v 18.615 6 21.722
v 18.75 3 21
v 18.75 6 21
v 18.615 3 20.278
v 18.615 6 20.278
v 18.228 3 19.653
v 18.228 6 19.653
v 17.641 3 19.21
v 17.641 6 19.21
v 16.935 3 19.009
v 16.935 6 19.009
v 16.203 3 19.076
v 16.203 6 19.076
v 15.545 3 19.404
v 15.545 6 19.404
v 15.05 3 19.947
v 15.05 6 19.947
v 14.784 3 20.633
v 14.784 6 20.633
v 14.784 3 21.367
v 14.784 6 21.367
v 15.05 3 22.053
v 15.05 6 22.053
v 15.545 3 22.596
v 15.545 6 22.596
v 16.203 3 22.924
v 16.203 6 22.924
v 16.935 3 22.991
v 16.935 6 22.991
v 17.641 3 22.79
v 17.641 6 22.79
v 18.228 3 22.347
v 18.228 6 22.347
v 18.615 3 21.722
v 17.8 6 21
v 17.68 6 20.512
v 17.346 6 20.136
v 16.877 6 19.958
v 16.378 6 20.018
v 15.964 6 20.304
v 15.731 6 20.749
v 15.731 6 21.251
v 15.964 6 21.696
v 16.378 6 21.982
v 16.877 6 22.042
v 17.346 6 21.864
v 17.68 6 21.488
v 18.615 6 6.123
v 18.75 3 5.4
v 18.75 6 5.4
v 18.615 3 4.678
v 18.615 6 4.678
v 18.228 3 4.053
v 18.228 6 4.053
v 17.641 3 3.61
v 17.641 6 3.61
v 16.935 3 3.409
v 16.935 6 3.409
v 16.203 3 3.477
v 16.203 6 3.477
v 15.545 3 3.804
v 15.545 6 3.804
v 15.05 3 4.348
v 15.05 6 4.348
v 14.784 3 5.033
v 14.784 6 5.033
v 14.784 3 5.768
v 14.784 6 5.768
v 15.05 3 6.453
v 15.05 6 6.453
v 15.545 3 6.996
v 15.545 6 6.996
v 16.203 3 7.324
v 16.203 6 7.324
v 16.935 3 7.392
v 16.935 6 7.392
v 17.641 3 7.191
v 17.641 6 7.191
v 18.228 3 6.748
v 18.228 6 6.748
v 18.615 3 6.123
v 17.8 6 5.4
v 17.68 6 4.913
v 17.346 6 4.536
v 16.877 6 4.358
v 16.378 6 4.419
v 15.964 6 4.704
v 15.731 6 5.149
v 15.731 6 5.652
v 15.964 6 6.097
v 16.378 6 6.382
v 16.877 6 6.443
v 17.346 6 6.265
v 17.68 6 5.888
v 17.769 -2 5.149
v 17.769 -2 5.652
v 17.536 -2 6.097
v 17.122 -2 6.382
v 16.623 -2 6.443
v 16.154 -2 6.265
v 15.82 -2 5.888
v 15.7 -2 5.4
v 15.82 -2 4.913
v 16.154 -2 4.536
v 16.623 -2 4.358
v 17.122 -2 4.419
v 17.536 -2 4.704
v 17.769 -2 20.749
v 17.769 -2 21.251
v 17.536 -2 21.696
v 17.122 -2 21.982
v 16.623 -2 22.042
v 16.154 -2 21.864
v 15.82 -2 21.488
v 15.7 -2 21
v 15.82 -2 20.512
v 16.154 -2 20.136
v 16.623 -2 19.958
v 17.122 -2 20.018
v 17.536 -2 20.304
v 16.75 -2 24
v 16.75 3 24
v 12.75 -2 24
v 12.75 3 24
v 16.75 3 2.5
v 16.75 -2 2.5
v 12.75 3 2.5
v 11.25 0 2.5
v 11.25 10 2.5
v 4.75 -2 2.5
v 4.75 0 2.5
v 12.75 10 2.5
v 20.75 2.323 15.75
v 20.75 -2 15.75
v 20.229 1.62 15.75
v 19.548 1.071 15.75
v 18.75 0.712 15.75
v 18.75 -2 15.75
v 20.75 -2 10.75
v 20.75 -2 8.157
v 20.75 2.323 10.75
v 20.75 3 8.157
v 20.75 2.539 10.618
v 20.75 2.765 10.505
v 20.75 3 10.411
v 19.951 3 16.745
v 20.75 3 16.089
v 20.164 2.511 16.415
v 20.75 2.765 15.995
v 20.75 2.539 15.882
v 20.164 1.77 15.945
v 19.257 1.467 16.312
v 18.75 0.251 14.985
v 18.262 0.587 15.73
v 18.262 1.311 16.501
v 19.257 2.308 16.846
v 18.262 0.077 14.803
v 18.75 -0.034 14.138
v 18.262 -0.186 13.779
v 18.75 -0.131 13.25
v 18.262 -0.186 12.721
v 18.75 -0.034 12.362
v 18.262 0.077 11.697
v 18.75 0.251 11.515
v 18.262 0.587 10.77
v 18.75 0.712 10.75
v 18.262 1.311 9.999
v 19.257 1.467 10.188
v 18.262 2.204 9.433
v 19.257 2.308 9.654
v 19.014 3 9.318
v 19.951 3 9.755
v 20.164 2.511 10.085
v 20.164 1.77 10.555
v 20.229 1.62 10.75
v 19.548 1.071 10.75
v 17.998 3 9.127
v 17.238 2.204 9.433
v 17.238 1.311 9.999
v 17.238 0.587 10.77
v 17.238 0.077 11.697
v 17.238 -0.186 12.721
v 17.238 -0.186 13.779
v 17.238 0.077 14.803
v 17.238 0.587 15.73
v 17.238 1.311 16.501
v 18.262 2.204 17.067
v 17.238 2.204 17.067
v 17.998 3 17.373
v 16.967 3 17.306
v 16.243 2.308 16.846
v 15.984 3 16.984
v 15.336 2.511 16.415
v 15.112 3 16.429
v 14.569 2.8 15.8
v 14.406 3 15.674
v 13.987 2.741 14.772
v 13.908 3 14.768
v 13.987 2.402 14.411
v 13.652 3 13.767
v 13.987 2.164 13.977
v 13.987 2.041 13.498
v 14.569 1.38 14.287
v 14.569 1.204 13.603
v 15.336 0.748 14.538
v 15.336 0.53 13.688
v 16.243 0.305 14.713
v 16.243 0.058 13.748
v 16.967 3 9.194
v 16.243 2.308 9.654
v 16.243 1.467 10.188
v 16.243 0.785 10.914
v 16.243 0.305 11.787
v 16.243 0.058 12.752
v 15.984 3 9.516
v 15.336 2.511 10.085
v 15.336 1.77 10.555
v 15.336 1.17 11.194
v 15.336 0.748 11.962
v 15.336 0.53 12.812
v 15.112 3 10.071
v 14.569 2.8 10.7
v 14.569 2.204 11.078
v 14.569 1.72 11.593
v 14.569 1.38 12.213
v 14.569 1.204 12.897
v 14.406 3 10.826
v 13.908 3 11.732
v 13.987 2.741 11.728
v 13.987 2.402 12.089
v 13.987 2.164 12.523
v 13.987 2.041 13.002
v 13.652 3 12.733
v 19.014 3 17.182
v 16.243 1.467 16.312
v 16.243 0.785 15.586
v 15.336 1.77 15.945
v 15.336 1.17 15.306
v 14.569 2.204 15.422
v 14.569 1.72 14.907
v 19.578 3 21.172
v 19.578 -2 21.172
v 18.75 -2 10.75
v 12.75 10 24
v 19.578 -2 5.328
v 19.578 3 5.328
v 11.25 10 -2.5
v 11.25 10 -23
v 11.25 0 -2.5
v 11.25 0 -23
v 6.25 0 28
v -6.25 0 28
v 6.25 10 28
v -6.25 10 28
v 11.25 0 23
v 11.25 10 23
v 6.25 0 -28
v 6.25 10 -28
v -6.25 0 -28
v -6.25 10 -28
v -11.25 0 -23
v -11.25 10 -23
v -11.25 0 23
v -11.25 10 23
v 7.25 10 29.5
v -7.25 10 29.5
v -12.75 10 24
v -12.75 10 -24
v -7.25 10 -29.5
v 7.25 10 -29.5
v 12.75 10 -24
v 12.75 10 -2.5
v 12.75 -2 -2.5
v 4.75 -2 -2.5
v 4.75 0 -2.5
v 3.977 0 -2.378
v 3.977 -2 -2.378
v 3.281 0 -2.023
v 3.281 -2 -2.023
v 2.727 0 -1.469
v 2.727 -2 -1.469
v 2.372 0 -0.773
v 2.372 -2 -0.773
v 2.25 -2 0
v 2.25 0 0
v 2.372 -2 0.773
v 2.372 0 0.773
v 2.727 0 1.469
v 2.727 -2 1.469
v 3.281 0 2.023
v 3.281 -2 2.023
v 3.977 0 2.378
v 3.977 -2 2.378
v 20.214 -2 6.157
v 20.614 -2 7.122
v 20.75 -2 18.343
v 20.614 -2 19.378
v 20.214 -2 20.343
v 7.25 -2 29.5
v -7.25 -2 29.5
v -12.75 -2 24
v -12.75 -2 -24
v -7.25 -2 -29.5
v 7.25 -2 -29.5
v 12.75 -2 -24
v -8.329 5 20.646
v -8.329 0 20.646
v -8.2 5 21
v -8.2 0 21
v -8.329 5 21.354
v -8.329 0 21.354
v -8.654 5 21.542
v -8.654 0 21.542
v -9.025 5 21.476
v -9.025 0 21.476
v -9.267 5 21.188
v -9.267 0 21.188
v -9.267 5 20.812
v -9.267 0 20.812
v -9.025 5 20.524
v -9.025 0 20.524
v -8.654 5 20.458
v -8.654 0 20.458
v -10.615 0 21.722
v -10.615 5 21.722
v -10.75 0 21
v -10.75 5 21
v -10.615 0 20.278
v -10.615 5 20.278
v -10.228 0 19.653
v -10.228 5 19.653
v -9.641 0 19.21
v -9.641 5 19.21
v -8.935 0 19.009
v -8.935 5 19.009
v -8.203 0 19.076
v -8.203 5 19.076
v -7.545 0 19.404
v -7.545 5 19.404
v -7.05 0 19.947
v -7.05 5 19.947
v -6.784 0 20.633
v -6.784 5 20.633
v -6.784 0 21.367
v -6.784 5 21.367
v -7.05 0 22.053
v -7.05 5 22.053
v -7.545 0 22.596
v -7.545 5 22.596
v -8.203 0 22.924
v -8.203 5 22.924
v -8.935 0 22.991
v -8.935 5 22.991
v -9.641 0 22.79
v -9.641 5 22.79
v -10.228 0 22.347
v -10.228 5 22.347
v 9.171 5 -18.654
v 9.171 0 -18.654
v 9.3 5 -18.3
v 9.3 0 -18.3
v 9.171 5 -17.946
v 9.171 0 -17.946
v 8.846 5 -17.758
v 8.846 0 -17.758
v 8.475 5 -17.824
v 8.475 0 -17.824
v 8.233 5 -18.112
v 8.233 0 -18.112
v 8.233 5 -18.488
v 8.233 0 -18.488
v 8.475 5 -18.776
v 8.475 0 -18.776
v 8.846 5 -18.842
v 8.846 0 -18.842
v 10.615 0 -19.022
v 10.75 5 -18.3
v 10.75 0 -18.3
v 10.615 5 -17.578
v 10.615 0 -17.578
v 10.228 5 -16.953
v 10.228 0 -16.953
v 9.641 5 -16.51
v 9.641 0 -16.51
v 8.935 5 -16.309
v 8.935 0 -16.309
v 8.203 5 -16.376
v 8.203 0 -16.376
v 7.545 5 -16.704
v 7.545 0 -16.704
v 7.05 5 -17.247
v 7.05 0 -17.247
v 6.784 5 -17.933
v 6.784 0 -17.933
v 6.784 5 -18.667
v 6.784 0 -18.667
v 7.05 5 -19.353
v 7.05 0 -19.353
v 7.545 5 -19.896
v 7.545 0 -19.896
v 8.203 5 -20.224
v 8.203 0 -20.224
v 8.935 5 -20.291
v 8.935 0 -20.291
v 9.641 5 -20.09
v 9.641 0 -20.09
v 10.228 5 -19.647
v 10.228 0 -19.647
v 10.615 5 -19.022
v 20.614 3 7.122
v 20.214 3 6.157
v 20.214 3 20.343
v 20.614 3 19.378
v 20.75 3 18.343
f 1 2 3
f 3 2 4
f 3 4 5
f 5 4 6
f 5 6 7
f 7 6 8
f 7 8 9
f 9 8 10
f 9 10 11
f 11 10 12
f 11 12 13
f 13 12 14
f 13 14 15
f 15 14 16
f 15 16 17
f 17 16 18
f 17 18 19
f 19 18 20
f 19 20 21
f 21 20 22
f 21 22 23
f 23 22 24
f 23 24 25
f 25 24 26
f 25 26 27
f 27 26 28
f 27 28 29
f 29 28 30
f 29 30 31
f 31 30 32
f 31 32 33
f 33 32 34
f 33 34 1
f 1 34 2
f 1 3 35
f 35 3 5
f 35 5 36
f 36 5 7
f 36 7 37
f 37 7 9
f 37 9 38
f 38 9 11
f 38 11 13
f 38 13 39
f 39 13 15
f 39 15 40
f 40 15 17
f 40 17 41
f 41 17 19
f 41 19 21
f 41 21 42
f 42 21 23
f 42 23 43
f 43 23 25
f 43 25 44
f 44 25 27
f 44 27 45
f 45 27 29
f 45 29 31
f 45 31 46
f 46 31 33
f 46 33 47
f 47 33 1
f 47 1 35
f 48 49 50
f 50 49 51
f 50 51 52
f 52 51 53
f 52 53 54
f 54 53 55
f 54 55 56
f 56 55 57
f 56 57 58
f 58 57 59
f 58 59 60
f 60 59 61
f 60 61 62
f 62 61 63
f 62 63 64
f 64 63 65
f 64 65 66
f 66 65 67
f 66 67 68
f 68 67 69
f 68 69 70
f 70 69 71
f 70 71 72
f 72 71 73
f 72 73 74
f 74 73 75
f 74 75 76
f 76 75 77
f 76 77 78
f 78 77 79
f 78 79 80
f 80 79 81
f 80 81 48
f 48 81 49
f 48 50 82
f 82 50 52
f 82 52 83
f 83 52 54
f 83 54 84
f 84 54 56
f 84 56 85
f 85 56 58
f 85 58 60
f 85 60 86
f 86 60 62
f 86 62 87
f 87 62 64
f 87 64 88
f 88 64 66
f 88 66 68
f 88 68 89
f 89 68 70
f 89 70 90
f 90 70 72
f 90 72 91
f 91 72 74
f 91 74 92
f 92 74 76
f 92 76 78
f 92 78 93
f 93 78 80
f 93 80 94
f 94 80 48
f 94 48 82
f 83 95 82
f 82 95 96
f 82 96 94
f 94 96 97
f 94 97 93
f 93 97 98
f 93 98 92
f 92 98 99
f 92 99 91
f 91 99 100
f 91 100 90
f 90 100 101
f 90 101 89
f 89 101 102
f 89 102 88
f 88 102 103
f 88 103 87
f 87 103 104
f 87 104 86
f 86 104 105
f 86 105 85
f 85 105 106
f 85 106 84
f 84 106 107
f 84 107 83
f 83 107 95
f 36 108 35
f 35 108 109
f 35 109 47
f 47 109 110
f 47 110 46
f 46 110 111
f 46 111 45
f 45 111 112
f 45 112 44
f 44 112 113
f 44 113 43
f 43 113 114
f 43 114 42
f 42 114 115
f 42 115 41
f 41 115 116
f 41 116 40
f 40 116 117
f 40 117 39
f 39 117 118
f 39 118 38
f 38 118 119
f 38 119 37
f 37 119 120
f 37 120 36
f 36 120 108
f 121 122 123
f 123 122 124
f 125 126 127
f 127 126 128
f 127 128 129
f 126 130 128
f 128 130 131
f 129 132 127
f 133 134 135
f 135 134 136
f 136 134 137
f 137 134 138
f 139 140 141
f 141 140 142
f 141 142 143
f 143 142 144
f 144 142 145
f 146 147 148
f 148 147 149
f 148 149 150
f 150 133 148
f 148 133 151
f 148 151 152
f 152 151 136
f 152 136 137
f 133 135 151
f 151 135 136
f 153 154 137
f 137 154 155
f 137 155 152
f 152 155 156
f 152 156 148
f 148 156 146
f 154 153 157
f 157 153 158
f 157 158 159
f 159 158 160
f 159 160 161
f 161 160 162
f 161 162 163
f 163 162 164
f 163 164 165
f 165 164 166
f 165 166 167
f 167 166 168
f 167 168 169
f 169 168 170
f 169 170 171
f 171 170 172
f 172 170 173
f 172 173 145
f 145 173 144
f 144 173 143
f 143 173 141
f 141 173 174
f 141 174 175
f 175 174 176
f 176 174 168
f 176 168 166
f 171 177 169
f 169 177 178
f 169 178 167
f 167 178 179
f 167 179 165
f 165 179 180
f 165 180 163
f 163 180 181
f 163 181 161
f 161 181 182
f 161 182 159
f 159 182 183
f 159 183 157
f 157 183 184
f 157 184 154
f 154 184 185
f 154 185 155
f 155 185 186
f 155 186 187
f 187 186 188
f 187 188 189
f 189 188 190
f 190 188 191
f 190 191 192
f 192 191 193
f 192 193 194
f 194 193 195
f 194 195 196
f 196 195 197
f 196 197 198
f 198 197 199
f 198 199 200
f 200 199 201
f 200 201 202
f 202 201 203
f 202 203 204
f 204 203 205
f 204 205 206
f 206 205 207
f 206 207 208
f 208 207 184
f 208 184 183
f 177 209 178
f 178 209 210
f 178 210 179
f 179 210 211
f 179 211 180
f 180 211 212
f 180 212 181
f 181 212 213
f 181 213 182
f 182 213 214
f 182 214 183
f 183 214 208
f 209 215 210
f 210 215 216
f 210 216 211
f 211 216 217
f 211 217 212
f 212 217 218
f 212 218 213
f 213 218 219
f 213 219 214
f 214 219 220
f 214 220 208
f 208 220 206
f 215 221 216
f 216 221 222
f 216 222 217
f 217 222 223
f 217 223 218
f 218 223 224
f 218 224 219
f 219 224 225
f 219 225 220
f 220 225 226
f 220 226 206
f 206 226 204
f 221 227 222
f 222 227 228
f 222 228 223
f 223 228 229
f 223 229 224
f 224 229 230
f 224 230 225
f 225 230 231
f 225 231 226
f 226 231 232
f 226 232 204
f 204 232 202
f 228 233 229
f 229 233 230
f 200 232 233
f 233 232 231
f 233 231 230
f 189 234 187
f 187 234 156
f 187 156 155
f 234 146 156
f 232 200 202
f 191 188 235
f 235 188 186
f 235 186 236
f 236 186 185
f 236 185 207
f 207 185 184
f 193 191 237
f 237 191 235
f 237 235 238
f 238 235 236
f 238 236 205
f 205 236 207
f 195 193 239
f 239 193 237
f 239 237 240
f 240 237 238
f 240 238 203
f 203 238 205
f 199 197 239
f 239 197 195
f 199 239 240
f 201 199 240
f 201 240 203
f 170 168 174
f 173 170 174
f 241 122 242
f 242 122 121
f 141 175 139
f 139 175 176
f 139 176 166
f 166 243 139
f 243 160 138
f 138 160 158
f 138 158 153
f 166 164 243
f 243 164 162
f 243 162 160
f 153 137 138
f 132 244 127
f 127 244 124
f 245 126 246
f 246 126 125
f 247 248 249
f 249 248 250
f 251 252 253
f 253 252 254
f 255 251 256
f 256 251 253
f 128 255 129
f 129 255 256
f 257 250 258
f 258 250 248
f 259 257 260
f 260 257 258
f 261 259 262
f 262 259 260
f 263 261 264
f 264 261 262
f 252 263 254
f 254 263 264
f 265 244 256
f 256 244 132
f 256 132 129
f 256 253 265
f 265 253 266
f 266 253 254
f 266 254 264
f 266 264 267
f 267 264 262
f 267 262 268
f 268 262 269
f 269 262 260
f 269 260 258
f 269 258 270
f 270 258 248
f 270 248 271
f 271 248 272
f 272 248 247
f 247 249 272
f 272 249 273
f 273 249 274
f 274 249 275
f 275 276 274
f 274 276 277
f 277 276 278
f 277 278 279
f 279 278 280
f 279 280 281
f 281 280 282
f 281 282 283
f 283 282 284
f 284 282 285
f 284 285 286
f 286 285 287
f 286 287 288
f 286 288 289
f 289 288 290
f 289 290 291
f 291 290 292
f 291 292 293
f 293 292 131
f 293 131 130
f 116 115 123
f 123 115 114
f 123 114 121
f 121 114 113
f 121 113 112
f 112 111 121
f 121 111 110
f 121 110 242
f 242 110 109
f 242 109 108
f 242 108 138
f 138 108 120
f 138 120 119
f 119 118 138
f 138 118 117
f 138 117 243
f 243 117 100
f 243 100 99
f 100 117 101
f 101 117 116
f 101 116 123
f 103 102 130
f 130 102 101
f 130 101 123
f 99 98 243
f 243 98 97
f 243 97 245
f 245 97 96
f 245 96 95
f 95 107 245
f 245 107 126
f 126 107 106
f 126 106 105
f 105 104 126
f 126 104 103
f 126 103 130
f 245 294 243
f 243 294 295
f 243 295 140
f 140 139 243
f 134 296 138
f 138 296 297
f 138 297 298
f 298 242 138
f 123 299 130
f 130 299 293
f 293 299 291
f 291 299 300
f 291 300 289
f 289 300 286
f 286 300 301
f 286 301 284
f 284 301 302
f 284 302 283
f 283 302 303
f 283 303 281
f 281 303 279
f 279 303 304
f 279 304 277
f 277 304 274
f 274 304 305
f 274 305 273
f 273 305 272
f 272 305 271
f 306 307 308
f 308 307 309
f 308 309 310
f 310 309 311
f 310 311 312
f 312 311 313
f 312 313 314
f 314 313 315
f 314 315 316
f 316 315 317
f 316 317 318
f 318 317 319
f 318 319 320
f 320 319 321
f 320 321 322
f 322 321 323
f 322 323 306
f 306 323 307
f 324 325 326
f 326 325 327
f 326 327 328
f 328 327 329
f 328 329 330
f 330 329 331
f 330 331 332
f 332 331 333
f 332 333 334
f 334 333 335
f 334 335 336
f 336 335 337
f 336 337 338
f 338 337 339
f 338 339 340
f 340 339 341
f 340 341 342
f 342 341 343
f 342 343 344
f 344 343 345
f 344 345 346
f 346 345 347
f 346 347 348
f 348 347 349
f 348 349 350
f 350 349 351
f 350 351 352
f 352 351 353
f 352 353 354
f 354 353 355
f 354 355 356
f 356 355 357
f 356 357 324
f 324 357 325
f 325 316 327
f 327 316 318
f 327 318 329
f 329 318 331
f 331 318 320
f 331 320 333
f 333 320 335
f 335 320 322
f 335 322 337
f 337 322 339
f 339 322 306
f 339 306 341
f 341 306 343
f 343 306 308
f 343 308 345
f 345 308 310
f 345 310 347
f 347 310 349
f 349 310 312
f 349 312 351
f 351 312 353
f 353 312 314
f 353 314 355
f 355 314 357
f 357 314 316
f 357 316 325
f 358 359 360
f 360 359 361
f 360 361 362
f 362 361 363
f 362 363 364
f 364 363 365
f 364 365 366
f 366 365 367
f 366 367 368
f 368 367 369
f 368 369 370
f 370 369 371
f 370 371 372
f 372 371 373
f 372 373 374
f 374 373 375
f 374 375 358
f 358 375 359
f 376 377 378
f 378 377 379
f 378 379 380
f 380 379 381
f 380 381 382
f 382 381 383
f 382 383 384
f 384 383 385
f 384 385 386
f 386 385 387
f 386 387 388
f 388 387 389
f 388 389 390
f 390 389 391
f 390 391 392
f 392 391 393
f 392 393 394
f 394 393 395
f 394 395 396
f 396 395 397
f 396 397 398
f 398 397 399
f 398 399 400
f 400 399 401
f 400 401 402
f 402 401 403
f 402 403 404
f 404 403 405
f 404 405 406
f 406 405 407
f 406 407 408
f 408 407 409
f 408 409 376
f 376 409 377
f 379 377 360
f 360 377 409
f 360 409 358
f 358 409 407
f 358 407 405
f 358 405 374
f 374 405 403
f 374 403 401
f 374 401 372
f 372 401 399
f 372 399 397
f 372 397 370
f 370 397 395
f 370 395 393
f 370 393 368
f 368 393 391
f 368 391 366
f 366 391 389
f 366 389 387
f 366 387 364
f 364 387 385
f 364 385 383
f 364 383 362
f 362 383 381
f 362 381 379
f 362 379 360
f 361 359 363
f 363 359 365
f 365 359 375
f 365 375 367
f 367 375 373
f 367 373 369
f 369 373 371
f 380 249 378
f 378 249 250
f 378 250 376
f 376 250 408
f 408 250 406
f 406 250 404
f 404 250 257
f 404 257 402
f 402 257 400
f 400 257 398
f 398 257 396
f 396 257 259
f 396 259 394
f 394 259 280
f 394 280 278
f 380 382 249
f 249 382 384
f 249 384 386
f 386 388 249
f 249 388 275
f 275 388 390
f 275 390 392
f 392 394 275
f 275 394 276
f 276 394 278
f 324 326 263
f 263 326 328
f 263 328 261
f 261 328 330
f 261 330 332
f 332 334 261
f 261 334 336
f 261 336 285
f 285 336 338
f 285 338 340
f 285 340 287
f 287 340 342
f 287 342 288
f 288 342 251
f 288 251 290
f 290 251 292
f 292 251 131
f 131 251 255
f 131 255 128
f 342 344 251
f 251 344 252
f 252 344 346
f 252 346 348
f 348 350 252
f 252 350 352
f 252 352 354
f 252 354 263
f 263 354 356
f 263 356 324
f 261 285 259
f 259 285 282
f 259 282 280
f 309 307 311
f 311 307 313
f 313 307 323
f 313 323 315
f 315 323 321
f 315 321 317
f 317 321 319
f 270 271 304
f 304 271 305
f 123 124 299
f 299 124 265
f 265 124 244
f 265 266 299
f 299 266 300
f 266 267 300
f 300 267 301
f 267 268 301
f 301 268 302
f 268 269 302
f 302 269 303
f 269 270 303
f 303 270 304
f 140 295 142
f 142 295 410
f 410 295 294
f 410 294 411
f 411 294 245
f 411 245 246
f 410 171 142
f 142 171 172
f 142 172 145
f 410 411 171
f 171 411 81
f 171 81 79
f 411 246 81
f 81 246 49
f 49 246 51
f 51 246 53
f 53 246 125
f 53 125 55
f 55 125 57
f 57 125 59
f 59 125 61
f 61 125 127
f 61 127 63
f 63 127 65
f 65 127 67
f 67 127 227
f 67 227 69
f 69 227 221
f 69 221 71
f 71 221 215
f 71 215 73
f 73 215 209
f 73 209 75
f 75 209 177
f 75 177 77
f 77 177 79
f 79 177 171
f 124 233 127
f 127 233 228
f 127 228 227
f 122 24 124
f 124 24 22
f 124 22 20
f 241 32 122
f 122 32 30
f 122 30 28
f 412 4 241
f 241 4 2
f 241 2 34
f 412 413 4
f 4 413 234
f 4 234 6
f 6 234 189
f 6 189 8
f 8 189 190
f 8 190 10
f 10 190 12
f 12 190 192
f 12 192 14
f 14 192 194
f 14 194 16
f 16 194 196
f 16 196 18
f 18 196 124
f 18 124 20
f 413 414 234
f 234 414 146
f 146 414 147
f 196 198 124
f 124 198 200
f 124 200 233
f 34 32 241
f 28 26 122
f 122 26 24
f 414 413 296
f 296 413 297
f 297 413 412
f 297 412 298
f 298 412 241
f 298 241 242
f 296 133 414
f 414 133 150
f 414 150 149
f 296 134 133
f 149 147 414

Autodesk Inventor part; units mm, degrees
ref_plane "YZ Plane" through (0, 0, 0) normal (1, 0, 0) x (0, 1, 0)
ref_plane "XZ Plane" through (0, 0, 0) normal (0, 1, 0) x (-1, 0, 0)
sketch "Skizze1" plane through (0, 0, 0) normal (0, 1, 0) x (-1, 0, 0)
  line L0 (-5.25, 27.5) -> (5.25, 27.5)
  line L1 (10.75, 22) -> (10.75, -22)
  line L2 (5.25, -27.5) -> (-5.25, -27.5)
  line L3 (-10.75, -22) -> (-10.75, 22)
  line L4 (-10.75, 27.5) -> (10.75, -27.5) construction
  line L5 (10.75, 27.5) -> (-10.75, -27.5) construction
  line L6 (10.75, 22) -> (5.25, 27.5)
  line L7 (10.75, -22) -> (5.25, -27.5)
  line L8 (-5.25, -27.5) -> (-10.75, -22)
  line L9 (-10.75, 22) -> (-5.25, 27.5)
  line L10 (7.25, 29.5) -> (-7.25, 29.5)
  line L11 (-12.75, 24) -> (-12.75, -24)
  line L12 (-7.25, -29.5) -> (7.25, -29.5)
  line L13 (12.75, -24) -> (12.75, 24)
  line L14 (12.75, 29.5) -> (-12.75, -29.5) construction
  line L15 (-12.75, 29.5) -> (12.75, -29.5) construction
  line L16 (12.75, 24) -> (7.25, 29.5)
  line L17 (12.75, -24) -> (7.25, -29.5)
  line L18 (-7.25, -29.5) -> (-12.75, -24)
  line L19 (-12.75, 24) -> (-7.25, 29.5)
  point P0 (0, 0)
  dimension "d0" = 21.5
  dimension "d1" = 55
  dimension "d2" = 5.5
  dimension "d3" = 5.5
  dimension "d4" = 5.5
  dimension "d5" = 5.5
  dimension "d6" = 5.5
  dimension "d7" = 5.5
  dimension "d8" = 5.5
  dimension "d9" = 5.5
  dimension "d10" = 2
  dimension "d11" = 2
  dimension "d12" = 5.5
  dimension "d13" = 5.5
  dimension "d14" = 5.5
  dimension "d15" = 5.5
  dimension "d16" = 5.5
  dimension "d17" = 5.5
  dimension "d18" = 5.5
  dimension "d19" = 5.5
extrude "Extrusion1" add sketch "Skizze1" along normal blind 10
sketch "Skizze3" plane through (0, 0, 0) normal (0, -1, 0) x (1, 0, 0)
  line L0 (7.25, -29.5) -> (-7.25, -29.5) projected
  line L1 (12.75, -24) -> (7.25, -29.5) projected
  line L2 (12.75, 24) -> (12.75, -24) projected
  line L3 (7.25, 29.5) -> (12.75, 24) projected
  line L4 (-7.25, 29.5) -> (7.25, 29.5) projected
  line L5 (-12.75, 24) -> (-7.25, 29.5) projected
  line L6 (-12.75, -24) -> (-12.75, 24) projected
  line L7 (-7.25, -29.5) -> (-12.75, -24) projected
  line L8 (-5.25, 27.5) -> (-10.75, 22) projected
  line L9 (5.25, 27.5) -> (-5.25, 27.5) projected
  line L10 (10.75, 22) -> (5.25, 27.5) projected
  line L11 (10.75, -22) -> (10.75, 22) projected
  line L12 (5.25, -27.5) -> (10.75, -22) projected
  line L13 (-5.25, -27.5) -> (5.25, -27.5) projected
  line L14 (-10.75, -22) -> (-5.25, -27.5) projected
  line L15 (-10.75, 22) -> (-10.75, -22) projected
  point P0 (0, 0)
extrude "Extrusion2" add sketch "Skizze3" along normal blind 2 contours L0 L7 L6 L5 L4 L3 L2 L1 | L9 L10 L11 L12 L13 L14 L15 L8
sketch "Skizze4" plane through (0, 0, 0) normal (0, 1, 0) x (1, 0, 0)
  line L0 (-10.75, -22) -> (-10.75, 22) projected
  line L1 (-10.75, -21) -> (-8.75, -21)
  line L2 (10.75, 22) -> (10.75, -22) projected
  line L3 (10.75, 18.3) -> (8.75, 18.3)
  circle A0 centre (-8.75, -21) radius 2
  circle A1 centre (8.75, 18.3) radius 2
  circle A2 centre (-8.75, -21) radius 0.55
  circle A3 centre (8.75, 18.3) radius 0.55
  point P0 (0, 0)
  dimension "d24" = 2
  dimension "d25" = 21
  dimension "d26" = 2
  dimension "d27" = 18.3
  dimension "d28" = 4
  dimension "d29" = 4
  dimension "d30" = 1.1
  dimension "d31" = 1.1
extrude "Extrusion3" add sketch "Skizze4" along normal blind 5
sketch "Skizze8" plane through (12.75, 10, 24) normal (1, 0, 0) x (0, 0, -1)
  line L0 (26.5, -23.1836) -> (21.5, -23.1836)
  line L1 (21.5, -23.1836) -> (21.5, 3.1836)
  line L2 (21.5, 3.1836) -> (26.5, 3.1836)
  line L3 (26.5, 3.1836) -> (26.5, -23.1836)
  line L4 (26.5, -23.1836) -> (21.5, 3.1836) construction
  line L5 (21.5, -23.1836) -> (26.5, 3.1836) construction
  point P0 (24, -10)
  dimension "d44" = 5
extrude "Extrusion7" cut sketch "Skizze8" against normal blind 8
sketch "Skizze9" plane through (0, -2, 0) normal (0, -1, 0) x (1, 0, 0)
  line L0 (4.75, -2.5) -> (4.75, 2.5) projected
  circle A0 centre (4.75, 0) radius 2.5
  point P0 (0, 0)
  point P1 (4.75, 2.5)
extrude "Extrusion8" cut sketch "Skizze9" against normal blind 12 contours A0 L0 picked at (4.3627, -0.7379)
sketch "Skizze17" plane through (0, 10, 0) normal (0, 1, 0) x (1, 0, 0)
  line L0 (6.25, -28) -> (-6.25, -28)
  line L1 (-11.25, -23) -> (-11.25, 23)
  line L2 (-6.25, 28) -> (6.25, 28)
  line L3 (11.25, 23) -> (11.25, -23)
  line L4 (11.25, -28) -> (-11.25, 28) construction
  line L5 (-11.25, -28) -> (11.25, 28) construction
  line L6 (-10.75, -22) -> (-10.75, 22) projected
  line L7 (5.25, -27.5) -> (-5.25, -27.5) projected
  line L8 (-11.25, -23) -> (-6.25, -28)
  line L9 (-11.25, 23) -> (-6.25, 28)
  line L10 (6.25, 28) -> (11.25, 23)
  line L11 (11.25, -23) -> (6.25, -28)
  line L12 (-5.25, -27.5) -> (-10.75, -22) projected
  line L13 (-10.75, 22) -> (-5.25, 27.5) projected
  line L14 (-5.25, 27.5) -> (5.25, 27.5) projected
  line L15 (5.25, 27.5) -> (10.75, 22) projected
  line L16 (10.75, 22) -> (10.75, 2.5) projected
  line L17 (10.75, -2.5) -> (10.75, -22) projected
  line L18 (10.75, -22) -> (5.25, -27.5) projected
  line L19 (12.75, -2.5) -> (10.75, -2.5) projected
  line L20 (10.75, -2.5) -> (10.75, 2.5)
  point P0 (0, 0)
  dimension "d74" = 0.5
  dimension "d75" = 0.5
  dimension "d80" = 5
  dimension "d81" = 5
  dimension "d82" = 5
  dimension "d83" = 5
  dimension "d84" = 5
  dimension "d85" = 5
  dimension "d86" = 5
  dimension "d87" = 5
extrude "Extrusion15" cut sketch "Skizze17" against normal up to surface (10 mm away)
sketch "Skizze18" plane through (12.75, -2, 24) normal (1, 0, 0) x (0, 0, -1)
  line L0 (21.5, 0) -> (21.5, 12) projected
  line L1 (0, 12) -> (21.5, 12) projected
  line L2 (0, 0) -> (0, 12) projected
  line L3 (21.5, 0) -> (0, 0) projected
  point P0 (24, 2)
extrude "Extrusion16" add sketch "Skizze18" along normal blind 10
ref_plane "Arbeitsebene1" through (0, 4, 0) normal (0, 1, 0) x (1, 0, 0)
sketch "Skizze19" plane through (0, 4, 0) normal (0, 1, 0) x (1, 0, 0)
  line L0 (12.75, -24) -> (7.25, -29.5) projected
  line L1 (4.75, -2.5) -> (22.75, -2.5) projected
  line L2 (12.75, -24) -> (22.75, -2.5)
  line L3 (22.75, -2.5) -> (22.75, -24) projected
  line L4 (22.75, -2.5) -> (22.75, -24)
  line L5 (22.75, -24) -> (12.75, -2.5)
  circle A0 centre (17.75, -13.25) radius 4.25
  line L6 (22, -13.25) -> (13.5, -13.25)
  point P0 (0, 0)
  dimension "d93" = 8.5
revolve "Umdrehung1" cut sketch "Skizze19" angle 360 about axis through (22, 4, 13.25) along (-1, 0, 0) picked at (16.8466, -10.5822) picked at (14.953, -12.931) picked at (20.1235, -11.7363) contours A0 L2 L5 | L5 L6 A0 | A0 L6 L2
sketch "Skizze20" plane through (0, 10, 0) normal (0, 1, 0) x (1, 0, 0)
  line L0 (12.75, -24) -> (22.75, -24) projected
  line L1 (4.75, -2.5) -> (22.75, -2.5) projected
  line L2 (12.75, -24) -> (22.75, -2.5)
  line L3 (22.75, -2.5) -> (12.75, -2.5)
  line L4 (12.75, -24) -> (7.25, -29.5) projected
  line L5 (12.75, -24) -> (12.75, -2.5)
  line L6 (22.75, -2.5) -> (22.75, -24) projected
  point P0 (0, 0)
extrude "Extrusion17" cut sketch "Skizze20" against normal blind 7
sketch "Skizze21" plane through (22.75, -2, 24) normal (1, 0, 0) x (0, 0, -1)
  line L0 (8.25, 12.4425) -> (13.25, 12.4425)
  line L1 (13.25, 12.4425) -> (13.25, -2.4425)
  line L2 (13.25, -2.4425) -> (8.25, -2.4425)
  line L3 (8.25, -2.4425) -> (8.25, 12.4425)
  line L4 (14.8807, 5) -> (6.6193, 5) projected
  line L5 (8.25, 12.4425) -> (13.25, -2.4425) construction
  line L6 (13.25, 12.4425) -> (8.25, -2.4425) construction
  point P0 (24, 2)
  point P1 (10.75, 5)
  point P2 (13.25, 5)
  point P3 (8.25, 5)
  dimension "d97" = 5
extrude "Extrusion18" cut sketch "Skizze21" against normal blind 4 contours L4 L1 L2 L3
sketch "Skizze22" plane through (22.75, -2, 24) normal (1, 0, 0) x (0, 0, -1)
  line L0 (-21.5, 10) -> (21.5, 10)
  line L1 (21.5, 10) -> (21.5, 0)
  line L2 (21.5, 0) -> (-21.5, 0)
  line L3 (-21.5, 0) -> (-21.5, 10)
  line L4 (-21.5, 10) -> (21.5, 0) construction
  line L5 (21.5, 10) -> (-21.5, 0) construction
  point P0 (24, 2)
  point P1 (0, 5)
extrude "Extrusion19" cut sketch "Skizze22" against normal blind 2
sketch "Skizze23" plane through (0, 3, 0) normal (0, 1, 0) x (1, 0, 0)
  line L0 (20.75, -15.75) -> (20.75, -24) projected
  line L1 (12.75, -24) -> (12.75, -2.5) projected
  line L2 (20.75, -21) -> (16.75, -21)
  line L3 (16.75, -21) -> (16.75, -24)
  line L4 (12.75, -24) -> (20.75, -24) projected
  line L5 (20.75, -5.4005) -> (16.75, -5.4005)
  line L6 (16.75, -5.4005) -> (16.75, -2.4005)
  circle A0 centre (16.75, -21) radius 1.05
  circle A1 centre (16.75, -5.4005) radius 1.05
  point P0 (0, 0)
  dimension "d102" = 4
  dimension "d103" = 3
  dimension "d104" = 4
  dimension "d105" = 3
  dimension "d106" = 2.1
  dimension "d107" = 2.1
extrude "Extrusion20" cut sketch "Skizze23" against normal through all contours A0 L3 L2 | L2 L3 A0 | A1 L6 L5 | L5 L6 A1
sketch "Skizze24" plane through (0, 3, 0) normal (0, 1, 0) x (1, 0, 0)
  point P0 (0, 0)
sketch "Skizze25" plane through (0, 3, 0) normal (0, 1, 0) x (1, 0, 0)
  circle A0 centre (16.75, -5.4005) radius 1.05 projected
  circle A1 centre (16.75, -5.4005) radius 2
  circle A2 centre (16.75, -21) radius 1.05 projected
  circle A3 centre (16.75, -21) radius 2
  point P0 (0, 0)
  dimension "d110" = 4
  dimension "d111" = 4
extrude "Extrusion21" add sketch "Skizze25" along normal blind 3
sketch "Skizze26" plane through (0, 3, 0) normal (0, 1, 0) x (1, 0, 0)
  point P0 (0, 0)
chamfer "Fase2" distance 4 angle 45 2 edges at (20.75, 0.5, 2.5) (20.75, 0.5, 24)
fillet "Rundung2" radius 4 2 edges at (20.75, 0.5, 20) (20.75, 0.5, 6.5)
equation "\"d3\" = d2"
equation "\"d5\" = d4"
equation "\"d6\" = d4"
equation "\"d7\" = d6"
equation "\"d8\" = d4"
equation "\"d9\" = d8"
equation "\"d13\" = d12"
equation "\"d14\" = d12"
equation "\"d15\" = d14"
equation "\"d16\" = d12"
equation "\"d17\" = d16"
equation "\"d18\" = d12"
equation "\"d19\" = d18"
equation "\"d81\" = d80"
equation "\"d83\" = d82"
equation "\"d84\" = d82"
equation "\"d85\" = d84"
equation "\"d86\" = d82"
equation "\"d87\" = d86"
properties part number "CameraMold"
